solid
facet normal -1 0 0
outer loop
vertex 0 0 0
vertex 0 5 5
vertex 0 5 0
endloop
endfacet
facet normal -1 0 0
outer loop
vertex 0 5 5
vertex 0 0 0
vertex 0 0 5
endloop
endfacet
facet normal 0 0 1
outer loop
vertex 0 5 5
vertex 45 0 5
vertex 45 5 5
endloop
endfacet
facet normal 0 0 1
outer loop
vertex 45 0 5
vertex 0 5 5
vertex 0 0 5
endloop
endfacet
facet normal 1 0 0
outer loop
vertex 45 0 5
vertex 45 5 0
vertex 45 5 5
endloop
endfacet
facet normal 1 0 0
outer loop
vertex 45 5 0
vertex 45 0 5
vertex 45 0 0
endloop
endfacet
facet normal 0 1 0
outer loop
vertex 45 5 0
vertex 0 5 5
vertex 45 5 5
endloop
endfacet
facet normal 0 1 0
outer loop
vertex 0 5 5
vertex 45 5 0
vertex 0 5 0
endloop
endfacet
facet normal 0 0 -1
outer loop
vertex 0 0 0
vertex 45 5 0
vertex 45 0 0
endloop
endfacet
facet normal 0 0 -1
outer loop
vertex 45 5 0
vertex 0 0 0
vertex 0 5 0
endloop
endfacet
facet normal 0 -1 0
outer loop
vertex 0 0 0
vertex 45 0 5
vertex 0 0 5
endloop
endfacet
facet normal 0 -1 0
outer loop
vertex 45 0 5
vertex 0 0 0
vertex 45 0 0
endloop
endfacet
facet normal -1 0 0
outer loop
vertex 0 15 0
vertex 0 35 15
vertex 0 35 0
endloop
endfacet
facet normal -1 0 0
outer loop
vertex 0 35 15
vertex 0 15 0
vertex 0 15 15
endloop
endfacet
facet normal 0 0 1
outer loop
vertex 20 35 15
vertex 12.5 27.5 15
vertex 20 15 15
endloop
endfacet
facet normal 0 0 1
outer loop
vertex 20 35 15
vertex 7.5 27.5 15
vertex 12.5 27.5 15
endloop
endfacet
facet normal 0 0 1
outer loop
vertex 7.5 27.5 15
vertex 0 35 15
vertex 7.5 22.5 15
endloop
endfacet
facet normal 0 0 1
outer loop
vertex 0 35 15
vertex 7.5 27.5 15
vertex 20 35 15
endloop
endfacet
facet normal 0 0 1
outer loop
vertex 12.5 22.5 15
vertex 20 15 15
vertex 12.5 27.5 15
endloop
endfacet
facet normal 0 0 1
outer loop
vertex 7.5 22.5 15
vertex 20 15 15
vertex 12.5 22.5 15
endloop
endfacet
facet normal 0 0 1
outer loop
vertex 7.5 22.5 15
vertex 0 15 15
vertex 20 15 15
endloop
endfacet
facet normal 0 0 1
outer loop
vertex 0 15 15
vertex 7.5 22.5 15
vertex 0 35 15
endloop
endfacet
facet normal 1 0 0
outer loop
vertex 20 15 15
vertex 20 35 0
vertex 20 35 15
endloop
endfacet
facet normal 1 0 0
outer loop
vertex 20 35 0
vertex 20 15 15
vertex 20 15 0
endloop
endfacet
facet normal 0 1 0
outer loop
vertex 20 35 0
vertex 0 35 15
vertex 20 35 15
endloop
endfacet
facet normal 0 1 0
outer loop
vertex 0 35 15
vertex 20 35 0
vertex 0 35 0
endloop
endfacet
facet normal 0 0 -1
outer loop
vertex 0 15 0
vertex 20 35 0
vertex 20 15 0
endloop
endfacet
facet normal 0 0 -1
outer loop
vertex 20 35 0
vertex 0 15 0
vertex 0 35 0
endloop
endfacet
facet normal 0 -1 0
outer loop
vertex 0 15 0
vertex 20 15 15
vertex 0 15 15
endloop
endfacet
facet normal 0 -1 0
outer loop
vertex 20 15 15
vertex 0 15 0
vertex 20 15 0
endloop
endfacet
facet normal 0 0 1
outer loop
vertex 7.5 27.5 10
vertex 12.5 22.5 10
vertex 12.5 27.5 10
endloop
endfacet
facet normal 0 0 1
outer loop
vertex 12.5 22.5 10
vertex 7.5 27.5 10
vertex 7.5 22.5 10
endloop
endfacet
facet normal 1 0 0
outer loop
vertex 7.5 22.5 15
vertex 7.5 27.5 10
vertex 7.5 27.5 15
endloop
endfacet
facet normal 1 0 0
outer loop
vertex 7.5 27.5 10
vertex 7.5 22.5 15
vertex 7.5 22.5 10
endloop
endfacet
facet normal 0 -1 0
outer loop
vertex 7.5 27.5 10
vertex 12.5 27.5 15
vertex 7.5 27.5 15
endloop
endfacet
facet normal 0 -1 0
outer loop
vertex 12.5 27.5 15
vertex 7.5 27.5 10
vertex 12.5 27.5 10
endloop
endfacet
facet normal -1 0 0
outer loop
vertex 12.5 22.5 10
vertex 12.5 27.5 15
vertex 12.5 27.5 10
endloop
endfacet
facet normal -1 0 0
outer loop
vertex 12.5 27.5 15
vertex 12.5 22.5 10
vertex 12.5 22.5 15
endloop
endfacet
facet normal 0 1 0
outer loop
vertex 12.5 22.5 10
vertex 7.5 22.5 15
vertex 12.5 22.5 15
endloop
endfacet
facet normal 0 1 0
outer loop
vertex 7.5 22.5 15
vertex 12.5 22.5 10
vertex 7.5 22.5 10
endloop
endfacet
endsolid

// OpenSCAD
difference() {
    union () {
        cube([45,5,5]); 

        translate([0, 15,0])
            cube([20,20,15]); 
        }

    translate([12.5,22.5,10])
        rotate([0,-90,0])
            cube([20,5,5]); 
    }
